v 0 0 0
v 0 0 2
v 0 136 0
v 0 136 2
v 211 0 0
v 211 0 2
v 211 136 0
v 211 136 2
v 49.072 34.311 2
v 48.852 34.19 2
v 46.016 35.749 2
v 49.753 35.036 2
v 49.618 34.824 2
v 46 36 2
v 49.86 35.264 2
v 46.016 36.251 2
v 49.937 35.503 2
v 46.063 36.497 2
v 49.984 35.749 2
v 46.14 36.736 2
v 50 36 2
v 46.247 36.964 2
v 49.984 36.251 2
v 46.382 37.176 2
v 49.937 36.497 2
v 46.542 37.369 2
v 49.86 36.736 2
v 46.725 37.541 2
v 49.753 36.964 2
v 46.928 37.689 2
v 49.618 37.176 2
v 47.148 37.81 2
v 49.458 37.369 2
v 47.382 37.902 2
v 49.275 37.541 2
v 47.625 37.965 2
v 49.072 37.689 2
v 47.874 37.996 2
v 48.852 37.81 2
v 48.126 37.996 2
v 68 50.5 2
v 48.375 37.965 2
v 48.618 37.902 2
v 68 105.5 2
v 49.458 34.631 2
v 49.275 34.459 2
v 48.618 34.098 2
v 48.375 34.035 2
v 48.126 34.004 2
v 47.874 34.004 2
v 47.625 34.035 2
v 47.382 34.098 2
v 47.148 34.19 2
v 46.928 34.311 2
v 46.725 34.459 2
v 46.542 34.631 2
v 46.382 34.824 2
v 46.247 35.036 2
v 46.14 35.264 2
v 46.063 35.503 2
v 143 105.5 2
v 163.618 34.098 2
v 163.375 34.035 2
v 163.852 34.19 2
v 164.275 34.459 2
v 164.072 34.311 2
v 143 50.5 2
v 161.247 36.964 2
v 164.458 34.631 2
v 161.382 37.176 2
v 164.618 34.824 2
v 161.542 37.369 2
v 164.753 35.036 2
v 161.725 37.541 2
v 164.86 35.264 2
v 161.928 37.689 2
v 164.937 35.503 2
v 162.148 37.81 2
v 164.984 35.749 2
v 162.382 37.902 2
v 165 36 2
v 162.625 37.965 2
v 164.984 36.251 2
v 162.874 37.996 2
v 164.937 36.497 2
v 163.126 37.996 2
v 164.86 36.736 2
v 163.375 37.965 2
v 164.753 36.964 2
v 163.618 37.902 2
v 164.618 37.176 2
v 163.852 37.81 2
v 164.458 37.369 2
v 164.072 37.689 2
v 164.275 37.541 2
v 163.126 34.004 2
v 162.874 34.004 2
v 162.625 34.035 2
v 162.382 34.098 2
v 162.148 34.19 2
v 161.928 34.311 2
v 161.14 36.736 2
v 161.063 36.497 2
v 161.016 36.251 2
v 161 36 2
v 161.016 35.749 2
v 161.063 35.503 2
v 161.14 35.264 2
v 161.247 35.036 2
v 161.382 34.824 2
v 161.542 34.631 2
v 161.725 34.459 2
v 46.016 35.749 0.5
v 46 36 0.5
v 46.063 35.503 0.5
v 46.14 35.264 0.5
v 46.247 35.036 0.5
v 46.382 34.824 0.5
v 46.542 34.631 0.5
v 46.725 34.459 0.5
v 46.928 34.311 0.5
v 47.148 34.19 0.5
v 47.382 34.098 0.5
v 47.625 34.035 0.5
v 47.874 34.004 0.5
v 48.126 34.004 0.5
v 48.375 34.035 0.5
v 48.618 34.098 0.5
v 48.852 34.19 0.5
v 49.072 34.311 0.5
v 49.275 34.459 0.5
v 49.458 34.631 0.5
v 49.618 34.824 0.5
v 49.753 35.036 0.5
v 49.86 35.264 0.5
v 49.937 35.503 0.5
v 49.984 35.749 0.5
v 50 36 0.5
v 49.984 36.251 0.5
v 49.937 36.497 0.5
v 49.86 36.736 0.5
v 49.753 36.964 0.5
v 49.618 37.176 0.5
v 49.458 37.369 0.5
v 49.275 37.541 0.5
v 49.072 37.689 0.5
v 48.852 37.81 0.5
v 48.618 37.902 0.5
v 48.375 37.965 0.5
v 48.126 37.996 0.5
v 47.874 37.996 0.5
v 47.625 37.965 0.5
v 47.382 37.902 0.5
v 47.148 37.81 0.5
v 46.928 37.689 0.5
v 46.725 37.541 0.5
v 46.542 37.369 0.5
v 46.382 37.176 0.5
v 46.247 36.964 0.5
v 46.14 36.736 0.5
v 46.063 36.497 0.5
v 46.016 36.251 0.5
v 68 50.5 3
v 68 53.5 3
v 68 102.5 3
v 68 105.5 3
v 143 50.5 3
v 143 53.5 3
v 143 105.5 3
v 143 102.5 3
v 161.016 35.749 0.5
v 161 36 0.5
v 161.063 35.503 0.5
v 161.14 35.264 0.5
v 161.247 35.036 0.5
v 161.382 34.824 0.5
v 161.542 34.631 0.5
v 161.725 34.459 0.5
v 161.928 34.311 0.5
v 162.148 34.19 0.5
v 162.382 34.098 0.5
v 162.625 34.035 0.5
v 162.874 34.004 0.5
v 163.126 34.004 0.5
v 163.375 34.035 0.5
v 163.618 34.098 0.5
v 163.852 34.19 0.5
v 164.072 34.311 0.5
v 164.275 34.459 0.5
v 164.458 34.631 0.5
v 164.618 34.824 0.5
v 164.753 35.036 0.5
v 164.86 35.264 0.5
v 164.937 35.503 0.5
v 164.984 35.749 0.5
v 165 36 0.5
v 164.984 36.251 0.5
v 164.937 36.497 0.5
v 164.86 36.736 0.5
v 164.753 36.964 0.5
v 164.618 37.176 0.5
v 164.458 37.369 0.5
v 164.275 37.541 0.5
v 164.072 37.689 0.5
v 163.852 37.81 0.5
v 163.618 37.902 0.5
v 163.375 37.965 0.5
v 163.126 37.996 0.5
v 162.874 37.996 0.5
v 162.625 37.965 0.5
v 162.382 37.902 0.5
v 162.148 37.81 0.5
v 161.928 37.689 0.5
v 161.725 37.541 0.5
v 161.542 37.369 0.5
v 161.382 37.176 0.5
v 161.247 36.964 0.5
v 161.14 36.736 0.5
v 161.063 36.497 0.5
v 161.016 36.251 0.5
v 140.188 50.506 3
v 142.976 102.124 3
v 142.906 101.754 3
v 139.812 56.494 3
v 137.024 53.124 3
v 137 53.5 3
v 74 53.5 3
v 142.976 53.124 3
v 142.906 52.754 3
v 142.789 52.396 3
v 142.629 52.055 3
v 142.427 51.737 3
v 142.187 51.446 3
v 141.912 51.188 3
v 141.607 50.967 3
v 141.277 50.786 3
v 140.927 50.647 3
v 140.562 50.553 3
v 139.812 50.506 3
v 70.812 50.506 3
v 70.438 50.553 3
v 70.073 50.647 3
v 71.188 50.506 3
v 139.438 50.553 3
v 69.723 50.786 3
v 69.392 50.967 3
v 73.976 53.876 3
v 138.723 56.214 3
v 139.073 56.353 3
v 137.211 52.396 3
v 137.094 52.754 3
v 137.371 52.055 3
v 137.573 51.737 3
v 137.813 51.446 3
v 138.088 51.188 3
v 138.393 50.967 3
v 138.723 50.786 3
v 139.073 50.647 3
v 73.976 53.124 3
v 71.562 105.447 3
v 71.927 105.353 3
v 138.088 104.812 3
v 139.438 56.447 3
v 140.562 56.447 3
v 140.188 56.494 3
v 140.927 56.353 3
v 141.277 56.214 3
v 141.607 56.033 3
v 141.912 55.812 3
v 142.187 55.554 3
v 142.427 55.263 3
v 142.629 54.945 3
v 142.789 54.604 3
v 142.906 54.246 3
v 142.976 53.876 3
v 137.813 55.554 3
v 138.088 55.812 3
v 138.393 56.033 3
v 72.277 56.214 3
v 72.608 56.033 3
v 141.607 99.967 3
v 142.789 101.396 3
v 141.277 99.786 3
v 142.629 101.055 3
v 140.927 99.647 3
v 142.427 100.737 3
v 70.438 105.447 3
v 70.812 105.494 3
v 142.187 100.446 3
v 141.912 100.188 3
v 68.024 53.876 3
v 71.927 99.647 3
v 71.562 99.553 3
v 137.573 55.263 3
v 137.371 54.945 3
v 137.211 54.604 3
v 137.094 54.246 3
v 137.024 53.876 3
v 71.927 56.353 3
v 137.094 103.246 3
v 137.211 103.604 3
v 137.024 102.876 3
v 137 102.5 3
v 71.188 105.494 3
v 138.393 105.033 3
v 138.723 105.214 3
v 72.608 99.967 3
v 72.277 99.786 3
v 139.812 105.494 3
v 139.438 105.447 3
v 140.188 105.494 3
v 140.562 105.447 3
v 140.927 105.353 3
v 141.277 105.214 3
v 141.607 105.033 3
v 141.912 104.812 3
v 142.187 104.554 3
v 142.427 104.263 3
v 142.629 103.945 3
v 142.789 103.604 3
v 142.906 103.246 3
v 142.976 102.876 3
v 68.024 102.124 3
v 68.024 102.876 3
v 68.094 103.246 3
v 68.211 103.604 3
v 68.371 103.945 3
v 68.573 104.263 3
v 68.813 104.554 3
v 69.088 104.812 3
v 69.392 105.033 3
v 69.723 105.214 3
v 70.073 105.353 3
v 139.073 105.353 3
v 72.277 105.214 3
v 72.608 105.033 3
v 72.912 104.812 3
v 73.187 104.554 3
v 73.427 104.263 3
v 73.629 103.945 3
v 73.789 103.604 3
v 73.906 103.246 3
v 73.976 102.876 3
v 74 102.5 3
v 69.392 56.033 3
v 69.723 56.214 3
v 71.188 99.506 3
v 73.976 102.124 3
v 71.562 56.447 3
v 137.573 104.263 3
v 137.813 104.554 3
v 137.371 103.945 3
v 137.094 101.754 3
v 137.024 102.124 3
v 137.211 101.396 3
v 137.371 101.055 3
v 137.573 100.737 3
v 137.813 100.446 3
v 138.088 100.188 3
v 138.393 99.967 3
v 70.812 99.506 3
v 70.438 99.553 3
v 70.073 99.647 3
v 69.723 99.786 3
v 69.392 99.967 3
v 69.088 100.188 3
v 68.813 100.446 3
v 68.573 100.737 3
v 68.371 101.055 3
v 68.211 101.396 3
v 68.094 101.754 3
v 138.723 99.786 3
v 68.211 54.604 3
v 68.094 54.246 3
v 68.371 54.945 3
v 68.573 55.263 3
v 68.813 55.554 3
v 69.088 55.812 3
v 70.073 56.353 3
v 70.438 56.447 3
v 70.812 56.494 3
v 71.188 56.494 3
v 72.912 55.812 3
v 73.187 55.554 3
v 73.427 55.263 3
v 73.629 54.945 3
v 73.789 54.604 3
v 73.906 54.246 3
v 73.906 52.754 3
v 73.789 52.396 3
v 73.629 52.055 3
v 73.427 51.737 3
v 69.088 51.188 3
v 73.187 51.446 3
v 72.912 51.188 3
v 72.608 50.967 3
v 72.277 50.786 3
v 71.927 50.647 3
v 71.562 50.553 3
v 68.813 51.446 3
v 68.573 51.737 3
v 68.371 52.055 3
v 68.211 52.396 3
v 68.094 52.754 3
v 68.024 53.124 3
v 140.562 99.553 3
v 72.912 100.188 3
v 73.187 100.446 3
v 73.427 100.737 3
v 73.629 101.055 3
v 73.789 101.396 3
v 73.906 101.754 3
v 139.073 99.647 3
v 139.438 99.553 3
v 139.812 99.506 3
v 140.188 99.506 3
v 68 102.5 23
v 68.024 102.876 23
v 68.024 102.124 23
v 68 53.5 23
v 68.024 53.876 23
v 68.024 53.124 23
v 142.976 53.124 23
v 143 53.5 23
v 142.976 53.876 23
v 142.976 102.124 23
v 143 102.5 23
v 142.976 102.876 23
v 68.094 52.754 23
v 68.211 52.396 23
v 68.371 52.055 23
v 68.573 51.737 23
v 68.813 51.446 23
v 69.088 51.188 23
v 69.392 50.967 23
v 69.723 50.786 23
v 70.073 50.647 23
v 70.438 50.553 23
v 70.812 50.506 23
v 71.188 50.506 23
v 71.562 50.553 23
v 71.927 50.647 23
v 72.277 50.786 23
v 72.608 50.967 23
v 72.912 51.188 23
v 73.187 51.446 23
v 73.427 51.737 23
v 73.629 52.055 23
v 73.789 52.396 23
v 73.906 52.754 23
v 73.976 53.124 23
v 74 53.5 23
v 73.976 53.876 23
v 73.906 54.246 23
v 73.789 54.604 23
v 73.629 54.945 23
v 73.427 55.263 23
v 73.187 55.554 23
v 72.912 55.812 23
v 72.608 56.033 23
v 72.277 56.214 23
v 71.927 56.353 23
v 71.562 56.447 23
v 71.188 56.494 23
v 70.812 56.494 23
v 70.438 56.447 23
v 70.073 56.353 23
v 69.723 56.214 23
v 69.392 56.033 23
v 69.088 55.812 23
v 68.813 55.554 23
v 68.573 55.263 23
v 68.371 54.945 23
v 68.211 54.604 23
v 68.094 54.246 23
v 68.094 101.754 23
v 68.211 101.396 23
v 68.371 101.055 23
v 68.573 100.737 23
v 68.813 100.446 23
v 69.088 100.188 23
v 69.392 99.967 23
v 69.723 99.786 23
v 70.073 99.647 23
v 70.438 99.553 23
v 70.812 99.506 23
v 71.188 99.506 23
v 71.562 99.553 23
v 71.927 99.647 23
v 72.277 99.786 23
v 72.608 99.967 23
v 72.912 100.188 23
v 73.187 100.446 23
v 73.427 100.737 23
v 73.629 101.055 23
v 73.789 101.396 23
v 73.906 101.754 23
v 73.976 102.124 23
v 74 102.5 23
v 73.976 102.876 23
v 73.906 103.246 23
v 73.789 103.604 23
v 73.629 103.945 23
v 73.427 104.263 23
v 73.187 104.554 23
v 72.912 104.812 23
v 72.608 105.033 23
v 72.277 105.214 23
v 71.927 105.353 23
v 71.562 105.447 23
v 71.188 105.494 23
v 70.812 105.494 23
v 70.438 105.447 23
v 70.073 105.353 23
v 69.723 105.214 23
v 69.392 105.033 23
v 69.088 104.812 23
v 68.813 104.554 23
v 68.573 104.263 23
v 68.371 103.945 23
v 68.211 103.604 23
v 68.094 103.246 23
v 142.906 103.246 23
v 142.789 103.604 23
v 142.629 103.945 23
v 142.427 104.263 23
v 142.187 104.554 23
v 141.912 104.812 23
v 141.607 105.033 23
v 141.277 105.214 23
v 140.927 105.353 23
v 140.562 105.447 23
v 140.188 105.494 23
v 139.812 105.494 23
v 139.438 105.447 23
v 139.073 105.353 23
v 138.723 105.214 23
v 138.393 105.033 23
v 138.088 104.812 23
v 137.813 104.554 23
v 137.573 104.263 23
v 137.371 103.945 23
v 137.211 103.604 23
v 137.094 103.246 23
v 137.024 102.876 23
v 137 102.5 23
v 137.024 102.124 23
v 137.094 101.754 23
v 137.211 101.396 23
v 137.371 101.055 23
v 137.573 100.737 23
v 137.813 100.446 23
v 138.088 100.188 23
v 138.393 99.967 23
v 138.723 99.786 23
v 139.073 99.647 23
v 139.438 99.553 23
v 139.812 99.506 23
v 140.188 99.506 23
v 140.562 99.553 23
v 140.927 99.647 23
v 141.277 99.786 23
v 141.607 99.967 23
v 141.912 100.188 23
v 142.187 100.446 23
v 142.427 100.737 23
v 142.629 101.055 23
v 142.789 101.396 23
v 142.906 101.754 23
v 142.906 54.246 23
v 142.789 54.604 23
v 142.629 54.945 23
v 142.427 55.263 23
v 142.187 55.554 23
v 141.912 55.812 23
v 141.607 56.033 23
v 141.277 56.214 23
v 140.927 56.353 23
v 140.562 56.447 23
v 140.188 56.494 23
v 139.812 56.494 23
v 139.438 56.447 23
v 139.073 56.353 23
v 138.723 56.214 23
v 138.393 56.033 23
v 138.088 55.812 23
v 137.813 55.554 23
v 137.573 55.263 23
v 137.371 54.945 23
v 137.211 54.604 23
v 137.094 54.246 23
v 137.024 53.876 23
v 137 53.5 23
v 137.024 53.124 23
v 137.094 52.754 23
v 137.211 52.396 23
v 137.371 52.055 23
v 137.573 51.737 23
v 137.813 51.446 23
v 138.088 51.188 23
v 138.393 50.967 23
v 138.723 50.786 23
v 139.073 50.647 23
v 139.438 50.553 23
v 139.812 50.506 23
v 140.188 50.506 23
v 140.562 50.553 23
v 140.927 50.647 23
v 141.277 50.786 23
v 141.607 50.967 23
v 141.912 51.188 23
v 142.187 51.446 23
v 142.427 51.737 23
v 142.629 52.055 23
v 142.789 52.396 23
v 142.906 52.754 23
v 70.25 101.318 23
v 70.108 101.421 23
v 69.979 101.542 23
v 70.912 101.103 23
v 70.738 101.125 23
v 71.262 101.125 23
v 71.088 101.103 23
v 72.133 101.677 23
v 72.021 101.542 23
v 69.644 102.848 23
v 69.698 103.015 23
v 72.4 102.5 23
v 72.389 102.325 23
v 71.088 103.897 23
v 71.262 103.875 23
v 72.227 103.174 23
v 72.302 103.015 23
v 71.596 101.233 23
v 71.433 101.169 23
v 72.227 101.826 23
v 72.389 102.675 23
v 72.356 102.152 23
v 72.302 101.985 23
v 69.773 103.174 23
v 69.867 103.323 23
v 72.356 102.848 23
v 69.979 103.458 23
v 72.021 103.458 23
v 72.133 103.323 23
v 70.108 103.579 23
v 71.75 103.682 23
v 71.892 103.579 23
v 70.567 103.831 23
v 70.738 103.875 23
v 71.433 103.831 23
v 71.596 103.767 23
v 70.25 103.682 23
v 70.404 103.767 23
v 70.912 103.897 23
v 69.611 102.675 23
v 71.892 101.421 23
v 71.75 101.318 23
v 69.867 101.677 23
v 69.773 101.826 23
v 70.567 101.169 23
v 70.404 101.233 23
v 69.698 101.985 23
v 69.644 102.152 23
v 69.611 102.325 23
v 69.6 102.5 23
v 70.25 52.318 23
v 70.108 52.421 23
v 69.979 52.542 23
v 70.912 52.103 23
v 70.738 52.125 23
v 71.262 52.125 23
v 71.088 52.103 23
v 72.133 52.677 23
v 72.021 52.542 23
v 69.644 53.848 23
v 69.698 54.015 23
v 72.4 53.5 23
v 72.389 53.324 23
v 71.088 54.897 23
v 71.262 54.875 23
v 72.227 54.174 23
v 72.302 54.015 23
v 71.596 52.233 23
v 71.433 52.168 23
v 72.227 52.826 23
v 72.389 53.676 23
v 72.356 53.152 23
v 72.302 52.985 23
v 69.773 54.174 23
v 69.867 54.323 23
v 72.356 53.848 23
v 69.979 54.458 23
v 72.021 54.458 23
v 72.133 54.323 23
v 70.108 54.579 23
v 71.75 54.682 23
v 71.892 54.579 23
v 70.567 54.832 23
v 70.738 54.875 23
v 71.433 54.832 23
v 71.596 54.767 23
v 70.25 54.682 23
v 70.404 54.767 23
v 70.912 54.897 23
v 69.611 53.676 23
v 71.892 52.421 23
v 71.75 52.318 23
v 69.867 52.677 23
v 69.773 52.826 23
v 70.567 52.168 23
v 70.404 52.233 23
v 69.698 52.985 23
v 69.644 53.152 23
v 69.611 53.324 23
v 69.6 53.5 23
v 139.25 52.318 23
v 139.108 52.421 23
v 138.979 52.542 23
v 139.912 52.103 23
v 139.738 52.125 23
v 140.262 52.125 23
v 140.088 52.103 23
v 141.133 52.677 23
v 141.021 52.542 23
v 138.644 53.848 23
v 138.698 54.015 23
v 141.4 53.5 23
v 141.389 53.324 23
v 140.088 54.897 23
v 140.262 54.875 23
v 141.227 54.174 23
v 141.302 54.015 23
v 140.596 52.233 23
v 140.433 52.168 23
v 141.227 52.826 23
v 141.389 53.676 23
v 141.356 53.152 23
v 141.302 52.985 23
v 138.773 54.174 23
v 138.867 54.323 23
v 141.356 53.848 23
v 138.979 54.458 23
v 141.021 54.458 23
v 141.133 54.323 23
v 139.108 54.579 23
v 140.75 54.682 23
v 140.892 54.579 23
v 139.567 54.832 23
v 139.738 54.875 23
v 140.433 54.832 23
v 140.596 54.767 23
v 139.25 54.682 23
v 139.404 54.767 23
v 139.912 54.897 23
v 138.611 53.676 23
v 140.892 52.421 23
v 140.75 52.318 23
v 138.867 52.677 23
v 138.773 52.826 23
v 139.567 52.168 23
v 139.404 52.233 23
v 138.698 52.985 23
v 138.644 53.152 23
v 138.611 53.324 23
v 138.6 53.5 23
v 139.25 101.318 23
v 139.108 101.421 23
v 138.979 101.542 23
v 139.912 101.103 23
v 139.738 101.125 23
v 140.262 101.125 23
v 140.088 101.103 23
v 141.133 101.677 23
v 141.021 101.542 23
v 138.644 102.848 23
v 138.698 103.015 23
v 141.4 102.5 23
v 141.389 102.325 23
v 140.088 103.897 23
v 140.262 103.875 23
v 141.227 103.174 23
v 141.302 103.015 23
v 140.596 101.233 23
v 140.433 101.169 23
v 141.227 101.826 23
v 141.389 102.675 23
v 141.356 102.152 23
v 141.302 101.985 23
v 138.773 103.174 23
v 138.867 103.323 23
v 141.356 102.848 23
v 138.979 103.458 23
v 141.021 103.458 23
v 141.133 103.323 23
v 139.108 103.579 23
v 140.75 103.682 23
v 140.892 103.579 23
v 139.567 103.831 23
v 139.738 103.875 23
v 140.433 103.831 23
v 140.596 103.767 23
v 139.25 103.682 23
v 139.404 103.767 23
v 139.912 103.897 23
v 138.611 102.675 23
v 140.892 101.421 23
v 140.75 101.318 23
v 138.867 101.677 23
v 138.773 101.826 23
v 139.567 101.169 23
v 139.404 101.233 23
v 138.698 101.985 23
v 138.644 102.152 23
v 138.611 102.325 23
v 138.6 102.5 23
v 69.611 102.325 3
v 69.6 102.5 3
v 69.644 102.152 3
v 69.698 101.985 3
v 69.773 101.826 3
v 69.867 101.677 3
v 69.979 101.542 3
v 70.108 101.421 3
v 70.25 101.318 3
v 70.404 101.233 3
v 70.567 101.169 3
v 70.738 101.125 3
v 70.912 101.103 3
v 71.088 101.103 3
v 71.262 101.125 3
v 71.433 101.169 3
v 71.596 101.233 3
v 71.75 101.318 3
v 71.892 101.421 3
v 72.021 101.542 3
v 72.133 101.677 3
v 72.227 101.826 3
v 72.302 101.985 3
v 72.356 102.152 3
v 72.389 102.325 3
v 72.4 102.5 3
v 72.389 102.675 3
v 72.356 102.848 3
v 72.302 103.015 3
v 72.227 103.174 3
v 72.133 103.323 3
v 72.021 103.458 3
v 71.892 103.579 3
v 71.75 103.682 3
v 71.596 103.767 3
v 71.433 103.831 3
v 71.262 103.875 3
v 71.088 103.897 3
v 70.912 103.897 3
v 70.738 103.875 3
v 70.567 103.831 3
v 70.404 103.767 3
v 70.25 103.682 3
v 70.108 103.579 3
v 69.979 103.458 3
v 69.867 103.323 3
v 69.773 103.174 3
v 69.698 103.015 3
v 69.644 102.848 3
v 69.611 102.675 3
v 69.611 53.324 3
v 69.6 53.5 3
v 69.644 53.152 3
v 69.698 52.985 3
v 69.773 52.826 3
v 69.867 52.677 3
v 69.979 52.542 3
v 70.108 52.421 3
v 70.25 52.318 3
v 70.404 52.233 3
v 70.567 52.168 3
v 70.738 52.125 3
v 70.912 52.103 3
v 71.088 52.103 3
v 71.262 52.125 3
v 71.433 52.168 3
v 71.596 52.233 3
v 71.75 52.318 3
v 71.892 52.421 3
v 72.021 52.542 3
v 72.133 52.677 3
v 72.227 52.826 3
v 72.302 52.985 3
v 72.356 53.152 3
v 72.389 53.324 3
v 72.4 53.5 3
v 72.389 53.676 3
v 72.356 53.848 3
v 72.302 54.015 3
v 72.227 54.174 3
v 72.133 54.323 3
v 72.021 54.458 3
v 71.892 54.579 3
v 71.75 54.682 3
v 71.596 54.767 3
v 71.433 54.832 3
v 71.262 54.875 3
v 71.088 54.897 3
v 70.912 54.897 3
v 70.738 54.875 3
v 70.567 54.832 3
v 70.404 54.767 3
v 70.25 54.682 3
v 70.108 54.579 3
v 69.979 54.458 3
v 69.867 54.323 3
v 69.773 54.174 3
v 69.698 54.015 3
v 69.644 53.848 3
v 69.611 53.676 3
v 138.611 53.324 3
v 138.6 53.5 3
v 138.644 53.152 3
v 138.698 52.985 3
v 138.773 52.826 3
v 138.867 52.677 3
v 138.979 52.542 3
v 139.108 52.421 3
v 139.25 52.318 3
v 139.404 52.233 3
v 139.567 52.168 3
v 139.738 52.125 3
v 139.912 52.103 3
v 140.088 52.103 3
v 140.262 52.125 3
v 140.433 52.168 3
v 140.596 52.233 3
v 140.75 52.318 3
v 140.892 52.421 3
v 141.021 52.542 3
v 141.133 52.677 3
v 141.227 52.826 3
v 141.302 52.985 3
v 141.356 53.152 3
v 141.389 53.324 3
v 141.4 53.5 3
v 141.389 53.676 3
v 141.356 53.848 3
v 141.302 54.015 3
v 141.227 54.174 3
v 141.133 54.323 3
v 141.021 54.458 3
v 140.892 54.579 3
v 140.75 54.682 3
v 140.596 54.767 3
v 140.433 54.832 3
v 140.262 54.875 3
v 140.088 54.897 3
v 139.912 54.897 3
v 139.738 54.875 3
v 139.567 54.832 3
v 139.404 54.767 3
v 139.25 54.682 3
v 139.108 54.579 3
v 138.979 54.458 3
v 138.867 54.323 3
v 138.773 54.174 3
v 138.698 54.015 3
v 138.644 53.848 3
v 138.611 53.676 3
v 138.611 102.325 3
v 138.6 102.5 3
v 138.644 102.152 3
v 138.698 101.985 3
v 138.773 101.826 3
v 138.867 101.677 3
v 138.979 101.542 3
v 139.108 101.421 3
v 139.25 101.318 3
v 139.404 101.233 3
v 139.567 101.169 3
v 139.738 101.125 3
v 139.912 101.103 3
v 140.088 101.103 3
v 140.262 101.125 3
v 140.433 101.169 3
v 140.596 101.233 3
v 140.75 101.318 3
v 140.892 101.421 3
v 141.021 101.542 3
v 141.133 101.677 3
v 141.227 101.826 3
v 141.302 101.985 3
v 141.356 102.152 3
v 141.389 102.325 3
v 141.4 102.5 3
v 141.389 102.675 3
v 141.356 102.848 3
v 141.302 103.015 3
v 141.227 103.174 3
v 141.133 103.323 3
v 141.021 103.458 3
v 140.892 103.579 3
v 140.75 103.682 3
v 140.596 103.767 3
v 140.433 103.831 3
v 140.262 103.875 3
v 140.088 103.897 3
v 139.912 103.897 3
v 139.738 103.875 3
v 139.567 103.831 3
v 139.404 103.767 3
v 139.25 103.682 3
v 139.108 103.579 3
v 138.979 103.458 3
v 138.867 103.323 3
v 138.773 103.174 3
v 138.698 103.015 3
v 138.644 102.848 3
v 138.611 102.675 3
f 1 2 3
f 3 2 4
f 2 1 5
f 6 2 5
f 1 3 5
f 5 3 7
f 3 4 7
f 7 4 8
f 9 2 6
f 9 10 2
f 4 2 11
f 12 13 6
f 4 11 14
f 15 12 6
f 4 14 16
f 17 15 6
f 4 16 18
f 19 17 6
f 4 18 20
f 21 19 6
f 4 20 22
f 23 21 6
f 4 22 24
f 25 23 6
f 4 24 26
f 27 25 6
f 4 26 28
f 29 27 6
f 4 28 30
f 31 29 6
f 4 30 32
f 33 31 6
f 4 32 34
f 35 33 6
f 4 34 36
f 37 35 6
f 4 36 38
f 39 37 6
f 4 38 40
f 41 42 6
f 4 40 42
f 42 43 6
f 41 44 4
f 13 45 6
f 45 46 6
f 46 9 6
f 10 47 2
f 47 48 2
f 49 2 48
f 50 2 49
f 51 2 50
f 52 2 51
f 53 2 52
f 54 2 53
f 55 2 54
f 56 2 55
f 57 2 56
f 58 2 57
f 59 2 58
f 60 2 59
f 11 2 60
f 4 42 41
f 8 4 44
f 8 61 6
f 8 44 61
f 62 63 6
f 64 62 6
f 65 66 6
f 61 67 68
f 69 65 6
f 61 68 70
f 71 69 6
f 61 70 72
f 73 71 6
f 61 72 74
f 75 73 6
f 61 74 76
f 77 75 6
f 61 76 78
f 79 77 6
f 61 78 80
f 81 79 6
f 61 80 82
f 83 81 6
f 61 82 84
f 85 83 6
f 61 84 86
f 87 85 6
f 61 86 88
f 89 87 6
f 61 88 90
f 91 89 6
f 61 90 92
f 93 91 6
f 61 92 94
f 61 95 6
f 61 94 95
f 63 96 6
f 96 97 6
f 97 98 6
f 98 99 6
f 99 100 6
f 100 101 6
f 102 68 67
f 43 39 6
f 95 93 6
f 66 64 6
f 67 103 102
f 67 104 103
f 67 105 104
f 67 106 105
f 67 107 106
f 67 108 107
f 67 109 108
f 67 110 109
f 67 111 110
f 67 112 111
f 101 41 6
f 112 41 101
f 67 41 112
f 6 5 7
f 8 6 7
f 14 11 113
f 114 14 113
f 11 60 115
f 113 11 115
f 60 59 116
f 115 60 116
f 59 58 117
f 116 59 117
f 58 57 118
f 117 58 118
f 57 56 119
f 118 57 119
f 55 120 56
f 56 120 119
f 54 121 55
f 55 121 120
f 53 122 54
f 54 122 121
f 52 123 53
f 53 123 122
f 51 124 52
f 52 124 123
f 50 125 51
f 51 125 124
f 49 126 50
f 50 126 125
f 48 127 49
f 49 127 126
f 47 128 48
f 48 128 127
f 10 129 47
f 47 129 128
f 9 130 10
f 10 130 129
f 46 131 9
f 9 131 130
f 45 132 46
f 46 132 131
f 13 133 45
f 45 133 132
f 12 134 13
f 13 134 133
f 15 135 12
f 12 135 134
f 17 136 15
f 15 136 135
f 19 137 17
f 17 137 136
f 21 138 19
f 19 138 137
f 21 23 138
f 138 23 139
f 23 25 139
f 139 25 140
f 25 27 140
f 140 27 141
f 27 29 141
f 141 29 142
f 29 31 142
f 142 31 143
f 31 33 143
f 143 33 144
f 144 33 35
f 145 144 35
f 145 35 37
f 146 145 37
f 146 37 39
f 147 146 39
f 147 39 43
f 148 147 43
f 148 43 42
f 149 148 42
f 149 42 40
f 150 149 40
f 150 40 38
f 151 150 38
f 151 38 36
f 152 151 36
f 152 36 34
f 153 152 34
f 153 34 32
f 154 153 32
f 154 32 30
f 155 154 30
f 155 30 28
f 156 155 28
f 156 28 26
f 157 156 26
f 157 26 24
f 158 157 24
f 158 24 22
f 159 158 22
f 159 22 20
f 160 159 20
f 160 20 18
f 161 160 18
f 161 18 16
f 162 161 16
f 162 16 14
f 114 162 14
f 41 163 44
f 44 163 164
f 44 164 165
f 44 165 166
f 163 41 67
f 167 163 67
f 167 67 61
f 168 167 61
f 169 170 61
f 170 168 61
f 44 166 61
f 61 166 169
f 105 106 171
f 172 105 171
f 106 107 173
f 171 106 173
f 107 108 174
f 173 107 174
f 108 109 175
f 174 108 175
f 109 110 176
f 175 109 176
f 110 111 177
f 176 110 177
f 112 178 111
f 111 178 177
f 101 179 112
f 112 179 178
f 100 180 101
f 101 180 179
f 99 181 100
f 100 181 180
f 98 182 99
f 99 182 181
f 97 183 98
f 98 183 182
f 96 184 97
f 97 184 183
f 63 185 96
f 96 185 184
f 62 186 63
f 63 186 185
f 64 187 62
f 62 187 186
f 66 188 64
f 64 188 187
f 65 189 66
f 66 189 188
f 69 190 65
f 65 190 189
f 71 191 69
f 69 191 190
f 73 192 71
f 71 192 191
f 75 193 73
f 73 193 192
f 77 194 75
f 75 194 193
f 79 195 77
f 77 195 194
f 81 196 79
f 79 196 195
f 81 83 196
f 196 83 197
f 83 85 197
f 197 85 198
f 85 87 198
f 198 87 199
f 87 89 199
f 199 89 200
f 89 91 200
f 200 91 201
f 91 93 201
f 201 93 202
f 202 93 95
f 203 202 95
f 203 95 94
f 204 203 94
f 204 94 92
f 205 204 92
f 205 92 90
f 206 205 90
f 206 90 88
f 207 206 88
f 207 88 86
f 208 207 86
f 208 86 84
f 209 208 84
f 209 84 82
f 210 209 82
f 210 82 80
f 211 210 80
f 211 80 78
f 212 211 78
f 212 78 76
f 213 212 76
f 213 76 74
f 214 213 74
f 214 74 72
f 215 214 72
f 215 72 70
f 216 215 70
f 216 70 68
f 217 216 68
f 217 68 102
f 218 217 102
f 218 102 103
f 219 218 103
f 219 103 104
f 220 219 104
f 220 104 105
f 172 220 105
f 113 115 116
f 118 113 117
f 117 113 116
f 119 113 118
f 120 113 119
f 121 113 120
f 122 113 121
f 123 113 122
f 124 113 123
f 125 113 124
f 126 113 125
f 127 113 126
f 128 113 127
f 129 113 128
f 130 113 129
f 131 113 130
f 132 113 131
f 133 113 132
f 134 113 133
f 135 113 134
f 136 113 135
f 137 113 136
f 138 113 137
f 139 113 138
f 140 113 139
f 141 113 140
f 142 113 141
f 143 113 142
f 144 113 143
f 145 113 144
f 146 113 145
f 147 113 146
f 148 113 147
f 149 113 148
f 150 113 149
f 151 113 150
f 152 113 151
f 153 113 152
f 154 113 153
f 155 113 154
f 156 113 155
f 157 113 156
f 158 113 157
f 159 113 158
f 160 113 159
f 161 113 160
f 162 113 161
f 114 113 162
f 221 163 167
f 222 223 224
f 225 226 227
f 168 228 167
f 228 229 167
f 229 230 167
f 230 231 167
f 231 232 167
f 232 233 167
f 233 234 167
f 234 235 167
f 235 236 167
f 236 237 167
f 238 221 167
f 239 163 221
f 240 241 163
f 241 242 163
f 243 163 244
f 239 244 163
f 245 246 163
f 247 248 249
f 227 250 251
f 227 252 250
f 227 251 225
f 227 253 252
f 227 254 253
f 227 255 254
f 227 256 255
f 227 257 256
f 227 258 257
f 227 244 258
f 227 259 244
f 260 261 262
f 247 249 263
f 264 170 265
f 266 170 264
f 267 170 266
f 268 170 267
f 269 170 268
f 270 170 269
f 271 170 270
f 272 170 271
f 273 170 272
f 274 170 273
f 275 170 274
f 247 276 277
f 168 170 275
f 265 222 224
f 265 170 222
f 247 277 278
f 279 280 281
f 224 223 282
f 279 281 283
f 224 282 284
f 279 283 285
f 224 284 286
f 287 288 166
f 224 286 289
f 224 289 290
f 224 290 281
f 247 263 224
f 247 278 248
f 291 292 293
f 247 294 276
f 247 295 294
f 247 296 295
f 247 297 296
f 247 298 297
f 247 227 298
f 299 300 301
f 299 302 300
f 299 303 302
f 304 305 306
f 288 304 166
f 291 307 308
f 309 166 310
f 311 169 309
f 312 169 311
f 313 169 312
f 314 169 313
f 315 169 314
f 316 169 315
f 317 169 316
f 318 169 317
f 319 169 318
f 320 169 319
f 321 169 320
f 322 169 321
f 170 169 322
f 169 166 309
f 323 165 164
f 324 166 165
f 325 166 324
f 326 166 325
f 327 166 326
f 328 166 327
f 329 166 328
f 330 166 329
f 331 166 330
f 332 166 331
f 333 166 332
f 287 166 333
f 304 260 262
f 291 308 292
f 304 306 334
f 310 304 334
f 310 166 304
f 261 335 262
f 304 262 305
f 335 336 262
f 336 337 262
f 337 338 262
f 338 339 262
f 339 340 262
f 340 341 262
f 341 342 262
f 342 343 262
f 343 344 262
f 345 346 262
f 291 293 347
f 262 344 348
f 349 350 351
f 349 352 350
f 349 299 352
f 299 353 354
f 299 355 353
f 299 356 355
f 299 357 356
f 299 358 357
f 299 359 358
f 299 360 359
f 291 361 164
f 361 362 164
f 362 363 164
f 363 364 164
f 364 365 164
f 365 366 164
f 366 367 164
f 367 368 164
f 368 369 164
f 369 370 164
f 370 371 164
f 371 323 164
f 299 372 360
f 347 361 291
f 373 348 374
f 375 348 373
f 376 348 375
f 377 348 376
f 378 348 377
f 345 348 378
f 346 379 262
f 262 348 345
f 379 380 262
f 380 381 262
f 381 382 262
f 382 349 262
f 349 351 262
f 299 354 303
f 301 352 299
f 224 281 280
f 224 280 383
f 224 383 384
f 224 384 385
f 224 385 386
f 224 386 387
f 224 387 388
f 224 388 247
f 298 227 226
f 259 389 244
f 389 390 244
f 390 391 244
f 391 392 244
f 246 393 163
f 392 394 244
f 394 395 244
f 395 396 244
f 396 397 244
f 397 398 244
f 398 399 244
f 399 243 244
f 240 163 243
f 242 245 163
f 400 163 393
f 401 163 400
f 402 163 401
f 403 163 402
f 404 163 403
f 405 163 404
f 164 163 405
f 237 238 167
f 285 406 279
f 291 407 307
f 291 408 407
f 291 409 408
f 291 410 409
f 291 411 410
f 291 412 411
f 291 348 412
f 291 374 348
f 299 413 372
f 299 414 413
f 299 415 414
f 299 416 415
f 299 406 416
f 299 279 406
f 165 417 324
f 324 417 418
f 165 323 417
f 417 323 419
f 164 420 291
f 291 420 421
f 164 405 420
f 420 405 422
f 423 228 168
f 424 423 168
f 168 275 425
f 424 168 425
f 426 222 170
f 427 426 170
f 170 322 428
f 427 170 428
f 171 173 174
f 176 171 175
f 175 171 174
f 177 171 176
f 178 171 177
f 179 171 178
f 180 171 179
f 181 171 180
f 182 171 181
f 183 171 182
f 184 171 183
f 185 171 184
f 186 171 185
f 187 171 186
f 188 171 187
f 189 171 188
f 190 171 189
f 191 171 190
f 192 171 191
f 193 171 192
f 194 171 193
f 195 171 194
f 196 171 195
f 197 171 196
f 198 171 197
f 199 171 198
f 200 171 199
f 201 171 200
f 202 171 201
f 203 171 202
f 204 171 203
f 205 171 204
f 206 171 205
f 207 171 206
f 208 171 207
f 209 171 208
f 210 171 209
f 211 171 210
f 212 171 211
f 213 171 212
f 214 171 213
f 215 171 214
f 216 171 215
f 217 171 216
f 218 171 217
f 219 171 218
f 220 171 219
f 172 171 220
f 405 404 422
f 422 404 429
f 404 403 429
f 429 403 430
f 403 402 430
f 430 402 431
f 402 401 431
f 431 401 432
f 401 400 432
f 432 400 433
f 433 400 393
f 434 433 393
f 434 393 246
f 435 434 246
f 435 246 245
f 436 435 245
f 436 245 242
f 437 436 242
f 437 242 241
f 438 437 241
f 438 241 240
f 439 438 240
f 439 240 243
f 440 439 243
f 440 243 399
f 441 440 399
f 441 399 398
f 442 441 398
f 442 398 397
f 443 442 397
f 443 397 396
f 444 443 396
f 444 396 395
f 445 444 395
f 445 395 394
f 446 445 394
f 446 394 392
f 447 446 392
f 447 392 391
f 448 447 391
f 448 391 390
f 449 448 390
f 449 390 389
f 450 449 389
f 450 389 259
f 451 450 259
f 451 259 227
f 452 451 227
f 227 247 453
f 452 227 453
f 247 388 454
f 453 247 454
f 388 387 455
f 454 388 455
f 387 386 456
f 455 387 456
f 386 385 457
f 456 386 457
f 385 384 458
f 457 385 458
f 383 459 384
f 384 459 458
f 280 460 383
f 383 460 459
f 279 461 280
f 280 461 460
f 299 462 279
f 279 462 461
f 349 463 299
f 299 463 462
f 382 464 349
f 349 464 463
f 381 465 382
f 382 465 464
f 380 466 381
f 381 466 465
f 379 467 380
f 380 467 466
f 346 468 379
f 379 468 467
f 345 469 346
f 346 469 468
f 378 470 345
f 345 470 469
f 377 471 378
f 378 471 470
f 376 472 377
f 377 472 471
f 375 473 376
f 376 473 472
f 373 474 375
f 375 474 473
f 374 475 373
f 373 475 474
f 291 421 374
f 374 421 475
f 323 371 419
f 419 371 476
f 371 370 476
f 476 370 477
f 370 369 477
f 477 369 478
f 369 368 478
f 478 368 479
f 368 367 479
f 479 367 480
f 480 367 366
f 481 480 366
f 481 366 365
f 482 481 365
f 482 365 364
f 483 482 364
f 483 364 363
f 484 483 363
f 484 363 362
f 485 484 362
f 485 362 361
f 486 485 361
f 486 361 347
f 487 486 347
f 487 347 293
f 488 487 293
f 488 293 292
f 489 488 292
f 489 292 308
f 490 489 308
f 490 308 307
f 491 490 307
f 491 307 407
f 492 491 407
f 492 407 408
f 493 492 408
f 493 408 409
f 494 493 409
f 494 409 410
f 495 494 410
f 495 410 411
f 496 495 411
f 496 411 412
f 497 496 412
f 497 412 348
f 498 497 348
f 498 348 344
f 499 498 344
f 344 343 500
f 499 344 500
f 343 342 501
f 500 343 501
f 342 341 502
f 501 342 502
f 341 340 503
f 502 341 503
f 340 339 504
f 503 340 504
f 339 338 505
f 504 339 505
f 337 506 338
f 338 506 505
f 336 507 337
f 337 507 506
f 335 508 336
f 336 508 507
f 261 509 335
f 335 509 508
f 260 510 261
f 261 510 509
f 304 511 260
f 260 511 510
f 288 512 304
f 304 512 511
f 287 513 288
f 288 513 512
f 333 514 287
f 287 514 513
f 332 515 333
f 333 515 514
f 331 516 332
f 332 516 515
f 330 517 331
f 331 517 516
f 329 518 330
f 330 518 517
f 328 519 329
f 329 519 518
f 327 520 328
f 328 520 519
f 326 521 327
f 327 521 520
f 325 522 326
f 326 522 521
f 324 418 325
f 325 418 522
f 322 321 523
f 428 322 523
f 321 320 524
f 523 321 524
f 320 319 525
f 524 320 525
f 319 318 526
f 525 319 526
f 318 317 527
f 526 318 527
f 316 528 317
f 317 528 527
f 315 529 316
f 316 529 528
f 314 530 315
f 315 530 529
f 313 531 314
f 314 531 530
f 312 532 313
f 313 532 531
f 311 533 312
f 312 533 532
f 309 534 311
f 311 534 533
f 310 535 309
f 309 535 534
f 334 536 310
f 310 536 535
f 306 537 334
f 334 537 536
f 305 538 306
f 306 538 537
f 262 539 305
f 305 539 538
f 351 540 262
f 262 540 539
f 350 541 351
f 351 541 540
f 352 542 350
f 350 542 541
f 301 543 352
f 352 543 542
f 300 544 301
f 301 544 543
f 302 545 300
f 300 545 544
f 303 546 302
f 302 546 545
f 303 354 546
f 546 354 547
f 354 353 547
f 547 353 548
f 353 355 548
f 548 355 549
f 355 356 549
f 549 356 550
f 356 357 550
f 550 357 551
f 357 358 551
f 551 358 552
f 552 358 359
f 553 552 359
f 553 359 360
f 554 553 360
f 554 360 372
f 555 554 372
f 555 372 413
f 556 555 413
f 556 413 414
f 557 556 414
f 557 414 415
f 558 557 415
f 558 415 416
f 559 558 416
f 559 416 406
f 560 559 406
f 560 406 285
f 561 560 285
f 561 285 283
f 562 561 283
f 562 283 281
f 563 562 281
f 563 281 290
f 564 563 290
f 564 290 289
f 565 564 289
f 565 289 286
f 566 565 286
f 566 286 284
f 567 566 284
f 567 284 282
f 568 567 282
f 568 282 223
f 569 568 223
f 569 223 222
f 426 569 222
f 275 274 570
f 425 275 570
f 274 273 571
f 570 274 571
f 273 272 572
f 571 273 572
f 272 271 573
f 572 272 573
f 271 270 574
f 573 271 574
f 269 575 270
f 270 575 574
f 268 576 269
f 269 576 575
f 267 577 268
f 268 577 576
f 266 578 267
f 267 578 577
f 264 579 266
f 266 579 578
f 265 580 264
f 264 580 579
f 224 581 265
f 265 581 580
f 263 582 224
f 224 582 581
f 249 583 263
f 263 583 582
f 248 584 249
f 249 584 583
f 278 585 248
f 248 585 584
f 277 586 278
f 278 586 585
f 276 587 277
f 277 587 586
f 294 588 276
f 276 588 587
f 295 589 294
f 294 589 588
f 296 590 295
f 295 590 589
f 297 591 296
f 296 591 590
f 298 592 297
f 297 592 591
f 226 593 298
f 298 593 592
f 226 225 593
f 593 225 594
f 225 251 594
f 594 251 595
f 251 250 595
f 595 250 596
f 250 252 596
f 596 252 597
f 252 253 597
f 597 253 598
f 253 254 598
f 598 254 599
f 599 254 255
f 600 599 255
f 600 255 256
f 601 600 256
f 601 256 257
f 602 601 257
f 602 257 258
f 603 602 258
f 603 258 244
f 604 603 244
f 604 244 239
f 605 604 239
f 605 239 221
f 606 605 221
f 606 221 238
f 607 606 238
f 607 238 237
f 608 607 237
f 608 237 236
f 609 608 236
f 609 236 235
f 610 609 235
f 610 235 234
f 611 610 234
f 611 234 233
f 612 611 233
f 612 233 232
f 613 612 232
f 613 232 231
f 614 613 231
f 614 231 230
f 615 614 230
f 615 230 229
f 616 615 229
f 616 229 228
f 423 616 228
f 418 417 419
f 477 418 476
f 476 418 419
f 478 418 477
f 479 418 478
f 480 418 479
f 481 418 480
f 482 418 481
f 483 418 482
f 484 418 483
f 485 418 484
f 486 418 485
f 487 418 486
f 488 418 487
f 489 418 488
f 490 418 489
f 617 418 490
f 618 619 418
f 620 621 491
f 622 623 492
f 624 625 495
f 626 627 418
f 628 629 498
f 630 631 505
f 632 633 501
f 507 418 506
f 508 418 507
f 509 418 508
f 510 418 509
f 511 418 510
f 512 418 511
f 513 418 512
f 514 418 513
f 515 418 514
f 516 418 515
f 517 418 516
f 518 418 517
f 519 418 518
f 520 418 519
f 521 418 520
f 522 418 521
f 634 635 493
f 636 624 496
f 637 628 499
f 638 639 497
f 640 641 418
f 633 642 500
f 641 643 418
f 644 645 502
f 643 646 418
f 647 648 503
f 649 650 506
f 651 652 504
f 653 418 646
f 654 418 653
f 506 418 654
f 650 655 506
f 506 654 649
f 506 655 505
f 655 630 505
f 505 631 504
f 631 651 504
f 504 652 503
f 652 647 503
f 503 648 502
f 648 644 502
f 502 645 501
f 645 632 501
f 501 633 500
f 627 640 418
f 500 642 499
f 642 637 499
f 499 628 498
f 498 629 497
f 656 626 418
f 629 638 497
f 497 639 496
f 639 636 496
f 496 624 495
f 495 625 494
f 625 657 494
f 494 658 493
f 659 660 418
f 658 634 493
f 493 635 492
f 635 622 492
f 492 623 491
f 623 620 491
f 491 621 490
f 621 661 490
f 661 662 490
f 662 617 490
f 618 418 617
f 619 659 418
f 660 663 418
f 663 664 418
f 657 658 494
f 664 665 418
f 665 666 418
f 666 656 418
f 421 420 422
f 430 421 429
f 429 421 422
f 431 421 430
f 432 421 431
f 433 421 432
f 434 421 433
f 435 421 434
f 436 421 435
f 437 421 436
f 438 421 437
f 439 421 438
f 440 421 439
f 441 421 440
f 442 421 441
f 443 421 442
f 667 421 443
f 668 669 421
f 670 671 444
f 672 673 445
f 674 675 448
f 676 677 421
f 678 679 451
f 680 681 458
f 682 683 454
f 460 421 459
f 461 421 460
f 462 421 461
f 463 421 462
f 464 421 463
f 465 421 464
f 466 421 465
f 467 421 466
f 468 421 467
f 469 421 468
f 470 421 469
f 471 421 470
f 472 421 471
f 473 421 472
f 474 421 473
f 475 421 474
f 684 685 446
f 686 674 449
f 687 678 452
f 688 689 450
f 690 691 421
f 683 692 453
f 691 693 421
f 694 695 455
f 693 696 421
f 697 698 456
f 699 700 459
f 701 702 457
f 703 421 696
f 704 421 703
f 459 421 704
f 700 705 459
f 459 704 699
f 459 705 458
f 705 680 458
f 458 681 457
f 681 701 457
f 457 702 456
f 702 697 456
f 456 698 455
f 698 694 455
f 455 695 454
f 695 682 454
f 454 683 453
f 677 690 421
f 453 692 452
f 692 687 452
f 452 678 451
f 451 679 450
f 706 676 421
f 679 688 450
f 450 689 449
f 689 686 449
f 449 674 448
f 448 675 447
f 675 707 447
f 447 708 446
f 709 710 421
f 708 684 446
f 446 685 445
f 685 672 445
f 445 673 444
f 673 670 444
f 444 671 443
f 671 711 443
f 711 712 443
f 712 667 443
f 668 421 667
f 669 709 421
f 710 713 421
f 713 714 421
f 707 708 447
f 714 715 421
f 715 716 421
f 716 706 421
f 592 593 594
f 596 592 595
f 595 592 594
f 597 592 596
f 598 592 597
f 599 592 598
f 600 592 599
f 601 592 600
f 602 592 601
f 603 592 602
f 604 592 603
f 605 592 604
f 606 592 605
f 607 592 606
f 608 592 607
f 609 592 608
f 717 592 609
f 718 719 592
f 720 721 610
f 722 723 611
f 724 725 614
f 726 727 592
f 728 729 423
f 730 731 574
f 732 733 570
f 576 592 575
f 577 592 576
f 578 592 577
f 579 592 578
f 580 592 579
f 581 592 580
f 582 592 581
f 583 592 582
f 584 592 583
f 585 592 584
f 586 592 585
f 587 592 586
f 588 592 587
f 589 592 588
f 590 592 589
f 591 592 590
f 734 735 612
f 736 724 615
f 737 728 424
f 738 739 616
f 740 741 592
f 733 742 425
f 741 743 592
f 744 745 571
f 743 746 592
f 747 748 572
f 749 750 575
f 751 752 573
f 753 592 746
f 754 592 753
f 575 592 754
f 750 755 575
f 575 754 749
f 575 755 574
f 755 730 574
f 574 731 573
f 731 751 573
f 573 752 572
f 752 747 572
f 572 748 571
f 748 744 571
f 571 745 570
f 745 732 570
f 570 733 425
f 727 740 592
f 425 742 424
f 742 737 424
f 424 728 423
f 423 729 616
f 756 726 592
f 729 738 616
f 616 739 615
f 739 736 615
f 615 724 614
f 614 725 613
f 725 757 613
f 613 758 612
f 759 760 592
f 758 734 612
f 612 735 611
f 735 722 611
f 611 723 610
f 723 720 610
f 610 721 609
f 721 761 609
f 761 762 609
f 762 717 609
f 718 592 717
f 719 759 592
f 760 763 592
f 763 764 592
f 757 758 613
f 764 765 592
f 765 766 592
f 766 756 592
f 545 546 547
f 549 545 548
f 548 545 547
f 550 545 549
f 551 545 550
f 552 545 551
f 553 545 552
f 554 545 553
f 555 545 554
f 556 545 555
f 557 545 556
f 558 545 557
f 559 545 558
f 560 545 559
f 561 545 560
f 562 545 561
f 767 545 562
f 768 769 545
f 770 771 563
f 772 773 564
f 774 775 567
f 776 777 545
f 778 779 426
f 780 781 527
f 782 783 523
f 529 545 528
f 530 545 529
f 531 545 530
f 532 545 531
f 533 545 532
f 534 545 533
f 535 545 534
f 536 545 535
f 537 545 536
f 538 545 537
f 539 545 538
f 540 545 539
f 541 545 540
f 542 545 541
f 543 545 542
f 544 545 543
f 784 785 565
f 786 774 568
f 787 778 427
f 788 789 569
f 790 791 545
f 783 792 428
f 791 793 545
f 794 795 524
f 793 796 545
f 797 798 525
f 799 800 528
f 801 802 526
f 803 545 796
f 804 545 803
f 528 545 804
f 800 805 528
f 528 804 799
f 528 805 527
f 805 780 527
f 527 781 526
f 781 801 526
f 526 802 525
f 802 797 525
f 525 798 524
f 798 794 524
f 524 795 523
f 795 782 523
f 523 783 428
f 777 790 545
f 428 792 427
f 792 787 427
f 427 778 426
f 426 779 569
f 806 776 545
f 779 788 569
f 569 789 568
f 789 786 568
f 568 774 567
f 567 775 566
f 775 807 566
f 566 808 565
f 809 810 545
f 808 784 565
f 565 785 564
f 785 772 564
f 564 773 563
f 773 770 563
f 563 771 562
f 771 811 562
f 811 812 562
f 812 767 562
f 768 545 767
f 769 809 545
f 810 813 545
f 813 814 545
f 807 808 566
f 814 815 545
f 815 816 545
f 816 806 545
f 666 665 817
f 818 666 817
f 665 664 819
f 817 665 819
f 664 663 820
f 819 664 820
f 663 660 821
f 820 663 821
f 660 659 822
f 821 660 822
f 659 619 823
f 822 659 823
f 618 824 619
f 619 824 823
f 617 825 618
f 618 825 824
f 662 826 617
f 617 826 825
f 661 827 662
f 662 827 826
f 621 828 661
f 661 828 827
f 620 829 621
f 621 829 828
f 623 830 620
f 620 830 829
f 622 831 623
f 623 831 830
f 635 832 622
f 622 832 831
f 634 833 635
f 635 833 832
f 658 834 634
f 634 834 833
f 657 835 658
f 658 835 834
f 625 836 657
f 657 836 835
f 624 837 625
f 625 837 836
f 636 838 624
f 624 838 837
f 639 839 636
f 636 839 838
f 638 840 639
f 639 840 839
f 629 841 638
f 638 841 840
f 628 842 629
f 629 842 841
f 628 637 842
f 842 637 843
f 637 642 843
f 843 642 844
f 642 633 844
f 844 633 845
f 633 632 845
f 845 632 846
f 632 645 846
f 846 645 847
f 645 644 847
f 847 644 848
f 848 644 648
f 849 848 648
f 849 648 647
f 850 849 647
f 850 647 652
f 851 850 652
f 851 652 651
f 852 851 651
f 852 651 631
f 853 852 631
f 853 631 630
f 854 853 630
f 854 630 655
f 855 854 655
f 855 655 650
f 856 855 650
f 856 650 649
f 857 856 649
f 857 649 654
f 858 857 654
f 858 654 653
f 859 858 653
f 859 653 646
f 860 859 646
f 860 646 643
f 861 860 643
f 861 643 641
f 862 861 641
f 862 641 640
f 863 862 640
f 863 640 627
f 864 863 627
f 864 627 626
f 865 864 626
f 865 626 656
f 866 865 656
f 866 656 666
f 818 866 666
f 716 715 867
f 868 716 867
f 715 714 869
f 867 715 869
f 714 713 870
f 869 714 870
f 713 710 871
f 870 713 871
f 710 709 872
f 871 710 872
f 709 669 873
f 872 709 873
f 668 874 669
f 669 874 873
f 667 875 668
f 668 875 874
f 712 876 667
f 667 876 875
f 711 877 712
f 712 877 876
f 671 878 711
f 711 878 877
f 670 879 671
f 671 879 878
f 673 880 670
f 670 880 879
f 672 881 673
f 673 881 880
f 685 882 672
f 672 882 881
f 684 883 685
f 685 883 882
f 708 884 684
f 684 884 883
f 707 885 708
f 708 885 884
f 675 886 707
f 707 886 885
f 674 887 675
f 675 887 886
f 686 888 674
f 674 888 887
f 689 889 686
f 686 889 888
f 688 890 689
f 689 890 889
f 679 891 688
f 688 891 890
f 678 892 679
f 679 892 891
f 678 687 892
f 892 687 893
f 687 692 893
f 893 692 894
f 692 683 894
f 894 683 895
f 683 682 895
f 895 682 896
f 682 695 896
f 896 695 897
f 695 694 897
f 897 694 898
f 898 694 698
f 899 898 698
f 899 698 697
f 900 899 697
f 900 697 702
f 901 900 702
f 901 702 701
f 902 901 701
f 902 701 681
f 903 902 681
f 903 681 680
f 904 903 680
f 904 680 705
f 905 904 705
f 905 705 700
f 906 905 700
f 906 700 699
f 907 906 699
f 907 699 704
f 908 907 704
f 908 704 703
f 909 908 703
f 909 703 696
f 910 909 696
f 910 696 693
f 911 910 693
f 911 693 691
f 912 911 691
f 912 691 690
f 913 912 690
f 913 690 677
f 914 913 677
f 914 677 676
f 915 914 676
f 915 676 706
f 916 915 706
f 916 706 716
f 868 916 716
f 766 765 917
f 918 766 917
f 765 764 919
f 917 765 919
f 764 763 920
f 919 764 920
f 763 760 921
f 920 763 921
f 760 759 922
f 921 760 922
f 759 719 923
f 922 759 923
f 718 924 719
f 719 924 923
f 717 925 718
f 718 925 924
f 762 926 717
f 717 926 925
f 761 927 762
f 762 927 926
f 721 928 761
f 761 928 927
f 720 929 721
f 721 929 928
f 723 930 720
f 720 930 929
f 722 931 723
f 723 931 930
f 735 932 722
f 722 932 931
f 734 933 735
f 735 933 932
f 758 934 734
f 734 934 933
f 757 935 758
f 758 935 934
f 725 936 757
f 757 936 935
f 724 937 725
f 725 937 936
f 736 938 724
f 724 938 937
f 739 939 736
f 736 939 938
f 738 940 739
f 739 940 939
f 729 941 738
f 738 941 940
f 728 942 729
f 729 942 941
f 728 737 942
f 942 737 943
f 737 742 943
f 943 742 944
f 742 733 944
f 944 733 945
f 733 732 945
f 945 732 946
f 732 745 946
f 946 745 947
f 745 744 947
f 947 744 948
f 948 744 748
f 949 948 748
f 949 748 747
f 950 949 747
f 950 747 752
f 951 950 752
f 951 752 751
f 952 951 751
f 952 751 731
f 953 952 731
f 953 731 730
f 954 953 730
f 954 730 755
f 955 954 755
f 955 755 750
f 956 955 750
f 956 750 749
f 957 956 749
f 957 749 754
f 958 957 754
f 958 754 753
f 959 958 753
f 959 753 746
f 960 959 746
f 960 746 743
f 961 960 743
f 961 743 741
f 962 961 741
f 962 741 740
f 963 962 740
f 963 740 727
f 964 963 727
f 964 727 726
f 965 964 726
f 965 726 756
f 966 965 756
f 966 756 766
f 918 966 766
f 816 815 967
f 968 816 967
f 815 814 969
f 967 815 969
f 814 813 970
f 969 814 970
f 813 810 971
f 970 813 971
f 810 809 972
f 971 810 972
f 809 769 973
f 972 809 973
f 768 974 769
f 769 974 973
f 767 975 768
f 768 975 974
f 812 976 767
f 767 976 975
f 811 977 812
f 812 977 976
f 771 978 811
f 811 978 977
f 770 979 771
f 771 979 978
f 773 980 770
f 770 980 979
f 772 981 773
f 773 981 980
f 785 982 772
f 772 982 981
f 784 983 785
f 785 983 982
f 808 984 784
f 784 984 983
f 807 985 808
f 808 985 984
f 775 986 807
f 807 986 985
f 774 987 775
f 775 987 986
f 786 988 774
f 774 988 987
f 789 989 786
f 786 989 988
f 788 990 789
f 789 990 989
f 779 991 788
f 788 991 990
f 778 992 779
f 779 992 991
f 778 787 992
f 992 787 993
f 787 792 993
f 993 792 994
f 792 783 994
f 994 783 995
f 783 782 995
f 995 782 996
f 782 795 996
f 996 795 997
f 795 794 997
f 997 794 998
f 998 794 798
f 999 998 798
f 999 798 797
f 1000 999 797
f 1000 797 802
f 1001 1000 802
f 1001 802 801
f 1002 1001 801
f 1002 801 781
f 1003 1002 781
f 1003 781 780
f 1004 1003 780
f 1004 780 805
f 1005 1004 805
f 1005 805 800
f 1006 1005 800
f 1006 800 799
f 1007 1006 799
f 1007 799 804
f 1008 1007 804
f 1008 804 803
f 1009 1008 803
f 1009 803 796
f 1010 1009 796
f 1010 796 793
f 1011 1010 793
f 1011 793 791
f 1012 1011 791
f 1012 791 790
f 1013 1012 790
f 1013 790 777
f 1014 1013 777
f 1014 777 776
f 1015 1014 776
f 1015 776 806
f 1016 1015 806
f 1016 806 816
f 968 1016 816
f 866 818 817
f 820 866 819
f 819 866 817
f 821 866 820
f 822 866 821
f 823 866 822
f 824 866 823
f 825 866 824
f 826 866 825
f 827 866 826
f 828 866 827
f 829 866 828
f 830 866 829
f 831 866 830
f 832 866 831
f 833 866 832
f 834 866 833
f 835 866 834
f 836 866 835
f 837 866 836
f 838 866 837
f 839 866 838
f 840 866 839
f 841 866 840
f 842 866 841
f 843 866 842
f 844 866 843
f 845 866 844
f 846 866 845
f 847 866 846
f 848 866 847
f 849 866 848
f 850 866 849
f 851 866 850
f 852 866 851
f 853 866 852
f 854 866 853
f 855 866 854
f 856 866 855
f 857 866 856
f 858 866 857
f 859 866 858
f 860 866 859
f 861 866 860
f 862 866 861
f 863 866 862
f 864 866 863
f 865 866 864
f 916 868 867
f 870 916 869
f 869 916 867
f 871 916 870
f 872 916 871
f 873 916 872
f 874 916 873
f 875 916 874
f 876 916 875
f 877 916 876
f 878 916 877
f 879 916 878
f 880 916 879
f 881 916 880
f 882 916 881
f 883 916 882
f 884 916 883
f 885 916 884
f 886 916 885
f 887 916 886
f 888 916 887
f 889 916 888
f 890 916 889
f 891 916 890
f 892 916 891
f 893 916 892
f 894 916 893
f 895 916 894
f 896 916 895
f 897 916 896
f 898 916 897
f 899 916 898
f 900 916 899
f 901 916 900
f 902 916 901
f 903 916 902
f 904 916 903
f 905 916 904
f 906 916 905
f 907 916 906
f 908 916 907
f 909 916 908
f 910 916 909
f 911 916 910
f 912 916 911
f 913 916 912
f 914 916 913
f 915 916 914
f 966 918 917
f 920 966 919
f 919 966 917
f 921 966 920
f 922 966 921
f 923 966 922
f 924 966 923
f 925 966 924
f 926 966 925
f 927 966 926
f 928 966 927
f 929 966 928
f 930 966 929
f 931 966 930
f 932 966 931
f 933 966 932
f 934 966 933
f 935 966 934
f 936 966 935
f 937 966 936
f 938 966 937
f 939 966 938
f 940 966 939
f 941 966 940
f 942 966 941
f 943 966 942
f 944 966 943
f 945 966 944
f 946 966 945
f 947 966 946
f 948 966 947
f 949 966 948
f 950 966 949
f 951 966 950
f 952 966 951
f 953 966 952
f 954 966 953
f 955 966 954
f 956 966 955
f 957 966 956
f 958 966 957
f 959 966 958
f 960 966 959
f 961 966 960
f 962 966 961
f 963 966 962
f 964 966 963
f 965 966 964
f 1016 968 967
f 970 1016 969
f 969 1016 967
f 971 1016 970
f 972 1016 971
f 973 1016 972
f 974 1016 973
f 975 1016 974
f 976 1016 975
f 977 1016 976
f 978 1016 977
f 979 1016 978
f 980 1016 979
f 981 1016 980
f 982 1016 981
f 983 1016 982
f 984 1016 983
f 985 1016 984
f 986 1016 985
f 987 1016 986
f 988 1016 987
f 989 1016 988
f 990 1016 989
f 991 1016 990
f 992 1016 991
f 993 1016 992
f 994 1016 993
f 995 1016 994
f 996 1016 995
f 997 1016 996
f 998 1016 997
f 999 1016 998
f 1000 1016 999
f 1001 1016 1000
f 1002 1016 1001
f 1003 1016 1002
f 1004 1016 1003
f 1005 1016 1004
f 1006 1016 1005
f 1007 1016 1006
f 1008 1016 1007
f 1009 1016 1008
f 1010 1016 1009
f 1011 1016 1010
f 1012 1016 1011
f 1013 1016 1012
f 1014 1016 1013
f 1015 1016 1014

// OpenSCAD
// file: ../pi_mount.scad
module Standoff(h, r1, r2){
  difference() {
    cylinder(h=h, r=r1, $fn=50);
    cylinder(h=h+0.01, r=r2, $fn=50);
  }
}

module PiMount(){
  cube([85, 56, 1]);
  translate([24.05, 16.55, 1]) Standoff(6, 3, 1.5);
  translate([78.55, 44.95, 1]) Standoff(6, 3, 1.5);
}

module RelayMount(height){
  cube([75, 55, 1]);
  inner = 1.4;
  outer = 3;
  translate([3, 3, 1]) Standoff(height, outer, inner);
  translate([72, 3, 1]) Standoff(height, outer, inner);
  translate([3, 52, 1]) Standoff(height, outer, inner);
  translate([72, 52, 1]) Standoff(height, outer, inner);
}

module BarrierStripMount(depth){
  translate([5, 11, -depth]) cylinder(h=depth+0.2, r=2, $fn=50);
  translate([120, 11, -depth]) cylinder(h=depth+0.2, r=2, $fn=50);
}

translate([-62.5, -11, 0]) difference(){
  BarrierStripMount(depth=1.5);
}
// file: ../outlet.scad
module OutletMount(depth, height) {
  translate([0, 0, -depth]){
    cylinder(h=depth+0.1, r=1.25, $fn=50);
    translate([0, height, 0]) cylinder(h=depth+0.1, r=1.25, $fn=50);
  }
}

module OutletsMount(n_outlets, spacing, outlet_depth, outlet_height){
  for (x = [0:spacing:(n_outlets - 1) * spacing]){
    translate([x, 0, 0]) OutletMount(depth=outlet_depth, height=outlet_height);
  }
}

rotate([90, 0, 0]) difference(){
  translate([-50, -50, -1]) cube([2000, 2000, 1]);
  color("blue") OutletsMount(n_outlets=4, spacing=47, outlet_depth=2, outlet_height=85);
}
// file: ../rat_trap.scad
use <outlet.scad>
use <pi_mount.scad>

module RatTrapBox(length=215, width=140, height=120, thickness=2){
  union() {
    BottomFace(length=length, width=width, thickness=thickness); 
    FrontFace(length=length, height=height, thickness=thickness, hole_length=190, hole_height=80);
    RearFace(length=length, height=height, box_width=width, thickness=thickness);
    LeftFace(width=width, height=height, thickness=thickness);
    RightFace(width=width, height=height, thickness=thickness, box_length=length);
  }
}

module FrontFace(length, height, thickness, hole_length, hole_height){
  difference() {
    cube([length, thickness, height]);
    // Make the hole
    translate([(length-hole_length)/2, -0.05, (height-hole_height)/2]) cube([hole_length, thickness+0.1, hole_height]);
    // Make outlet screw ports
    color("blue") translate([(length-141)/2, 0, (height-85)/2]){
      rotate([90, 0, 0]){
        OutletsMount(n_outlets=4, spacing=47, outlet_depth=20, outlet_height=85);
      }
    }
  }
}

module RearFace(length, height, box_width, thickness){
  translate([0, box_width-thickness, 0]){
    difference(){
      cube([length, thickness, height]);
      translate([length/2, -0.05, thickness + 10]){
        rotate([-90, 0, 0]) cylinder(h=thickness+0.1, r=5);
      }
    }
    translate([(length-85)/2 + 85, 0.99, (height-56)/2 + 56 + 10]){
      rotate([-90, 0, 180]) color("green") PiMount();
    }
  }
  
}

module BottomFace(length, width, thickness){
  difference(){
    cube([length, width, thickness]);
    translate([(length-125)/2, 25, thickness]){
      color("orange") BarrierStripMount(depth=1.5);
    }
  }
  translate([(length-75)/2, (width-55)/2 + 10, thickness]){
    color("red") RelayMount(height=20);
  }
}

module LeftFace(width, height, thickness){
  cube([thickness, width, height]);
}

module RightFace(width, height, thickness, box_length){
  translate([box_length-thickness, 0, 0]){
    cube([thickness, width, height]);
    translate([0, width/2, (height-85)/2]){
      color("purple") rotate([0, -90, 0]) Standoff(h=10, r1=3, r2=1.25);
    }
    translate([0, width/2, height - (height-85)/2]){
      color("purple") rotate([0, -90, 0]) Standoff(h=10, r1=3, r2=1.25);
    }
  }
}

translate([-112.5, -75, -60]) RatTrapBox();
// main file
use <../rat_trap.scad>

BottomFace(length=211, width=136, thickness=2);
